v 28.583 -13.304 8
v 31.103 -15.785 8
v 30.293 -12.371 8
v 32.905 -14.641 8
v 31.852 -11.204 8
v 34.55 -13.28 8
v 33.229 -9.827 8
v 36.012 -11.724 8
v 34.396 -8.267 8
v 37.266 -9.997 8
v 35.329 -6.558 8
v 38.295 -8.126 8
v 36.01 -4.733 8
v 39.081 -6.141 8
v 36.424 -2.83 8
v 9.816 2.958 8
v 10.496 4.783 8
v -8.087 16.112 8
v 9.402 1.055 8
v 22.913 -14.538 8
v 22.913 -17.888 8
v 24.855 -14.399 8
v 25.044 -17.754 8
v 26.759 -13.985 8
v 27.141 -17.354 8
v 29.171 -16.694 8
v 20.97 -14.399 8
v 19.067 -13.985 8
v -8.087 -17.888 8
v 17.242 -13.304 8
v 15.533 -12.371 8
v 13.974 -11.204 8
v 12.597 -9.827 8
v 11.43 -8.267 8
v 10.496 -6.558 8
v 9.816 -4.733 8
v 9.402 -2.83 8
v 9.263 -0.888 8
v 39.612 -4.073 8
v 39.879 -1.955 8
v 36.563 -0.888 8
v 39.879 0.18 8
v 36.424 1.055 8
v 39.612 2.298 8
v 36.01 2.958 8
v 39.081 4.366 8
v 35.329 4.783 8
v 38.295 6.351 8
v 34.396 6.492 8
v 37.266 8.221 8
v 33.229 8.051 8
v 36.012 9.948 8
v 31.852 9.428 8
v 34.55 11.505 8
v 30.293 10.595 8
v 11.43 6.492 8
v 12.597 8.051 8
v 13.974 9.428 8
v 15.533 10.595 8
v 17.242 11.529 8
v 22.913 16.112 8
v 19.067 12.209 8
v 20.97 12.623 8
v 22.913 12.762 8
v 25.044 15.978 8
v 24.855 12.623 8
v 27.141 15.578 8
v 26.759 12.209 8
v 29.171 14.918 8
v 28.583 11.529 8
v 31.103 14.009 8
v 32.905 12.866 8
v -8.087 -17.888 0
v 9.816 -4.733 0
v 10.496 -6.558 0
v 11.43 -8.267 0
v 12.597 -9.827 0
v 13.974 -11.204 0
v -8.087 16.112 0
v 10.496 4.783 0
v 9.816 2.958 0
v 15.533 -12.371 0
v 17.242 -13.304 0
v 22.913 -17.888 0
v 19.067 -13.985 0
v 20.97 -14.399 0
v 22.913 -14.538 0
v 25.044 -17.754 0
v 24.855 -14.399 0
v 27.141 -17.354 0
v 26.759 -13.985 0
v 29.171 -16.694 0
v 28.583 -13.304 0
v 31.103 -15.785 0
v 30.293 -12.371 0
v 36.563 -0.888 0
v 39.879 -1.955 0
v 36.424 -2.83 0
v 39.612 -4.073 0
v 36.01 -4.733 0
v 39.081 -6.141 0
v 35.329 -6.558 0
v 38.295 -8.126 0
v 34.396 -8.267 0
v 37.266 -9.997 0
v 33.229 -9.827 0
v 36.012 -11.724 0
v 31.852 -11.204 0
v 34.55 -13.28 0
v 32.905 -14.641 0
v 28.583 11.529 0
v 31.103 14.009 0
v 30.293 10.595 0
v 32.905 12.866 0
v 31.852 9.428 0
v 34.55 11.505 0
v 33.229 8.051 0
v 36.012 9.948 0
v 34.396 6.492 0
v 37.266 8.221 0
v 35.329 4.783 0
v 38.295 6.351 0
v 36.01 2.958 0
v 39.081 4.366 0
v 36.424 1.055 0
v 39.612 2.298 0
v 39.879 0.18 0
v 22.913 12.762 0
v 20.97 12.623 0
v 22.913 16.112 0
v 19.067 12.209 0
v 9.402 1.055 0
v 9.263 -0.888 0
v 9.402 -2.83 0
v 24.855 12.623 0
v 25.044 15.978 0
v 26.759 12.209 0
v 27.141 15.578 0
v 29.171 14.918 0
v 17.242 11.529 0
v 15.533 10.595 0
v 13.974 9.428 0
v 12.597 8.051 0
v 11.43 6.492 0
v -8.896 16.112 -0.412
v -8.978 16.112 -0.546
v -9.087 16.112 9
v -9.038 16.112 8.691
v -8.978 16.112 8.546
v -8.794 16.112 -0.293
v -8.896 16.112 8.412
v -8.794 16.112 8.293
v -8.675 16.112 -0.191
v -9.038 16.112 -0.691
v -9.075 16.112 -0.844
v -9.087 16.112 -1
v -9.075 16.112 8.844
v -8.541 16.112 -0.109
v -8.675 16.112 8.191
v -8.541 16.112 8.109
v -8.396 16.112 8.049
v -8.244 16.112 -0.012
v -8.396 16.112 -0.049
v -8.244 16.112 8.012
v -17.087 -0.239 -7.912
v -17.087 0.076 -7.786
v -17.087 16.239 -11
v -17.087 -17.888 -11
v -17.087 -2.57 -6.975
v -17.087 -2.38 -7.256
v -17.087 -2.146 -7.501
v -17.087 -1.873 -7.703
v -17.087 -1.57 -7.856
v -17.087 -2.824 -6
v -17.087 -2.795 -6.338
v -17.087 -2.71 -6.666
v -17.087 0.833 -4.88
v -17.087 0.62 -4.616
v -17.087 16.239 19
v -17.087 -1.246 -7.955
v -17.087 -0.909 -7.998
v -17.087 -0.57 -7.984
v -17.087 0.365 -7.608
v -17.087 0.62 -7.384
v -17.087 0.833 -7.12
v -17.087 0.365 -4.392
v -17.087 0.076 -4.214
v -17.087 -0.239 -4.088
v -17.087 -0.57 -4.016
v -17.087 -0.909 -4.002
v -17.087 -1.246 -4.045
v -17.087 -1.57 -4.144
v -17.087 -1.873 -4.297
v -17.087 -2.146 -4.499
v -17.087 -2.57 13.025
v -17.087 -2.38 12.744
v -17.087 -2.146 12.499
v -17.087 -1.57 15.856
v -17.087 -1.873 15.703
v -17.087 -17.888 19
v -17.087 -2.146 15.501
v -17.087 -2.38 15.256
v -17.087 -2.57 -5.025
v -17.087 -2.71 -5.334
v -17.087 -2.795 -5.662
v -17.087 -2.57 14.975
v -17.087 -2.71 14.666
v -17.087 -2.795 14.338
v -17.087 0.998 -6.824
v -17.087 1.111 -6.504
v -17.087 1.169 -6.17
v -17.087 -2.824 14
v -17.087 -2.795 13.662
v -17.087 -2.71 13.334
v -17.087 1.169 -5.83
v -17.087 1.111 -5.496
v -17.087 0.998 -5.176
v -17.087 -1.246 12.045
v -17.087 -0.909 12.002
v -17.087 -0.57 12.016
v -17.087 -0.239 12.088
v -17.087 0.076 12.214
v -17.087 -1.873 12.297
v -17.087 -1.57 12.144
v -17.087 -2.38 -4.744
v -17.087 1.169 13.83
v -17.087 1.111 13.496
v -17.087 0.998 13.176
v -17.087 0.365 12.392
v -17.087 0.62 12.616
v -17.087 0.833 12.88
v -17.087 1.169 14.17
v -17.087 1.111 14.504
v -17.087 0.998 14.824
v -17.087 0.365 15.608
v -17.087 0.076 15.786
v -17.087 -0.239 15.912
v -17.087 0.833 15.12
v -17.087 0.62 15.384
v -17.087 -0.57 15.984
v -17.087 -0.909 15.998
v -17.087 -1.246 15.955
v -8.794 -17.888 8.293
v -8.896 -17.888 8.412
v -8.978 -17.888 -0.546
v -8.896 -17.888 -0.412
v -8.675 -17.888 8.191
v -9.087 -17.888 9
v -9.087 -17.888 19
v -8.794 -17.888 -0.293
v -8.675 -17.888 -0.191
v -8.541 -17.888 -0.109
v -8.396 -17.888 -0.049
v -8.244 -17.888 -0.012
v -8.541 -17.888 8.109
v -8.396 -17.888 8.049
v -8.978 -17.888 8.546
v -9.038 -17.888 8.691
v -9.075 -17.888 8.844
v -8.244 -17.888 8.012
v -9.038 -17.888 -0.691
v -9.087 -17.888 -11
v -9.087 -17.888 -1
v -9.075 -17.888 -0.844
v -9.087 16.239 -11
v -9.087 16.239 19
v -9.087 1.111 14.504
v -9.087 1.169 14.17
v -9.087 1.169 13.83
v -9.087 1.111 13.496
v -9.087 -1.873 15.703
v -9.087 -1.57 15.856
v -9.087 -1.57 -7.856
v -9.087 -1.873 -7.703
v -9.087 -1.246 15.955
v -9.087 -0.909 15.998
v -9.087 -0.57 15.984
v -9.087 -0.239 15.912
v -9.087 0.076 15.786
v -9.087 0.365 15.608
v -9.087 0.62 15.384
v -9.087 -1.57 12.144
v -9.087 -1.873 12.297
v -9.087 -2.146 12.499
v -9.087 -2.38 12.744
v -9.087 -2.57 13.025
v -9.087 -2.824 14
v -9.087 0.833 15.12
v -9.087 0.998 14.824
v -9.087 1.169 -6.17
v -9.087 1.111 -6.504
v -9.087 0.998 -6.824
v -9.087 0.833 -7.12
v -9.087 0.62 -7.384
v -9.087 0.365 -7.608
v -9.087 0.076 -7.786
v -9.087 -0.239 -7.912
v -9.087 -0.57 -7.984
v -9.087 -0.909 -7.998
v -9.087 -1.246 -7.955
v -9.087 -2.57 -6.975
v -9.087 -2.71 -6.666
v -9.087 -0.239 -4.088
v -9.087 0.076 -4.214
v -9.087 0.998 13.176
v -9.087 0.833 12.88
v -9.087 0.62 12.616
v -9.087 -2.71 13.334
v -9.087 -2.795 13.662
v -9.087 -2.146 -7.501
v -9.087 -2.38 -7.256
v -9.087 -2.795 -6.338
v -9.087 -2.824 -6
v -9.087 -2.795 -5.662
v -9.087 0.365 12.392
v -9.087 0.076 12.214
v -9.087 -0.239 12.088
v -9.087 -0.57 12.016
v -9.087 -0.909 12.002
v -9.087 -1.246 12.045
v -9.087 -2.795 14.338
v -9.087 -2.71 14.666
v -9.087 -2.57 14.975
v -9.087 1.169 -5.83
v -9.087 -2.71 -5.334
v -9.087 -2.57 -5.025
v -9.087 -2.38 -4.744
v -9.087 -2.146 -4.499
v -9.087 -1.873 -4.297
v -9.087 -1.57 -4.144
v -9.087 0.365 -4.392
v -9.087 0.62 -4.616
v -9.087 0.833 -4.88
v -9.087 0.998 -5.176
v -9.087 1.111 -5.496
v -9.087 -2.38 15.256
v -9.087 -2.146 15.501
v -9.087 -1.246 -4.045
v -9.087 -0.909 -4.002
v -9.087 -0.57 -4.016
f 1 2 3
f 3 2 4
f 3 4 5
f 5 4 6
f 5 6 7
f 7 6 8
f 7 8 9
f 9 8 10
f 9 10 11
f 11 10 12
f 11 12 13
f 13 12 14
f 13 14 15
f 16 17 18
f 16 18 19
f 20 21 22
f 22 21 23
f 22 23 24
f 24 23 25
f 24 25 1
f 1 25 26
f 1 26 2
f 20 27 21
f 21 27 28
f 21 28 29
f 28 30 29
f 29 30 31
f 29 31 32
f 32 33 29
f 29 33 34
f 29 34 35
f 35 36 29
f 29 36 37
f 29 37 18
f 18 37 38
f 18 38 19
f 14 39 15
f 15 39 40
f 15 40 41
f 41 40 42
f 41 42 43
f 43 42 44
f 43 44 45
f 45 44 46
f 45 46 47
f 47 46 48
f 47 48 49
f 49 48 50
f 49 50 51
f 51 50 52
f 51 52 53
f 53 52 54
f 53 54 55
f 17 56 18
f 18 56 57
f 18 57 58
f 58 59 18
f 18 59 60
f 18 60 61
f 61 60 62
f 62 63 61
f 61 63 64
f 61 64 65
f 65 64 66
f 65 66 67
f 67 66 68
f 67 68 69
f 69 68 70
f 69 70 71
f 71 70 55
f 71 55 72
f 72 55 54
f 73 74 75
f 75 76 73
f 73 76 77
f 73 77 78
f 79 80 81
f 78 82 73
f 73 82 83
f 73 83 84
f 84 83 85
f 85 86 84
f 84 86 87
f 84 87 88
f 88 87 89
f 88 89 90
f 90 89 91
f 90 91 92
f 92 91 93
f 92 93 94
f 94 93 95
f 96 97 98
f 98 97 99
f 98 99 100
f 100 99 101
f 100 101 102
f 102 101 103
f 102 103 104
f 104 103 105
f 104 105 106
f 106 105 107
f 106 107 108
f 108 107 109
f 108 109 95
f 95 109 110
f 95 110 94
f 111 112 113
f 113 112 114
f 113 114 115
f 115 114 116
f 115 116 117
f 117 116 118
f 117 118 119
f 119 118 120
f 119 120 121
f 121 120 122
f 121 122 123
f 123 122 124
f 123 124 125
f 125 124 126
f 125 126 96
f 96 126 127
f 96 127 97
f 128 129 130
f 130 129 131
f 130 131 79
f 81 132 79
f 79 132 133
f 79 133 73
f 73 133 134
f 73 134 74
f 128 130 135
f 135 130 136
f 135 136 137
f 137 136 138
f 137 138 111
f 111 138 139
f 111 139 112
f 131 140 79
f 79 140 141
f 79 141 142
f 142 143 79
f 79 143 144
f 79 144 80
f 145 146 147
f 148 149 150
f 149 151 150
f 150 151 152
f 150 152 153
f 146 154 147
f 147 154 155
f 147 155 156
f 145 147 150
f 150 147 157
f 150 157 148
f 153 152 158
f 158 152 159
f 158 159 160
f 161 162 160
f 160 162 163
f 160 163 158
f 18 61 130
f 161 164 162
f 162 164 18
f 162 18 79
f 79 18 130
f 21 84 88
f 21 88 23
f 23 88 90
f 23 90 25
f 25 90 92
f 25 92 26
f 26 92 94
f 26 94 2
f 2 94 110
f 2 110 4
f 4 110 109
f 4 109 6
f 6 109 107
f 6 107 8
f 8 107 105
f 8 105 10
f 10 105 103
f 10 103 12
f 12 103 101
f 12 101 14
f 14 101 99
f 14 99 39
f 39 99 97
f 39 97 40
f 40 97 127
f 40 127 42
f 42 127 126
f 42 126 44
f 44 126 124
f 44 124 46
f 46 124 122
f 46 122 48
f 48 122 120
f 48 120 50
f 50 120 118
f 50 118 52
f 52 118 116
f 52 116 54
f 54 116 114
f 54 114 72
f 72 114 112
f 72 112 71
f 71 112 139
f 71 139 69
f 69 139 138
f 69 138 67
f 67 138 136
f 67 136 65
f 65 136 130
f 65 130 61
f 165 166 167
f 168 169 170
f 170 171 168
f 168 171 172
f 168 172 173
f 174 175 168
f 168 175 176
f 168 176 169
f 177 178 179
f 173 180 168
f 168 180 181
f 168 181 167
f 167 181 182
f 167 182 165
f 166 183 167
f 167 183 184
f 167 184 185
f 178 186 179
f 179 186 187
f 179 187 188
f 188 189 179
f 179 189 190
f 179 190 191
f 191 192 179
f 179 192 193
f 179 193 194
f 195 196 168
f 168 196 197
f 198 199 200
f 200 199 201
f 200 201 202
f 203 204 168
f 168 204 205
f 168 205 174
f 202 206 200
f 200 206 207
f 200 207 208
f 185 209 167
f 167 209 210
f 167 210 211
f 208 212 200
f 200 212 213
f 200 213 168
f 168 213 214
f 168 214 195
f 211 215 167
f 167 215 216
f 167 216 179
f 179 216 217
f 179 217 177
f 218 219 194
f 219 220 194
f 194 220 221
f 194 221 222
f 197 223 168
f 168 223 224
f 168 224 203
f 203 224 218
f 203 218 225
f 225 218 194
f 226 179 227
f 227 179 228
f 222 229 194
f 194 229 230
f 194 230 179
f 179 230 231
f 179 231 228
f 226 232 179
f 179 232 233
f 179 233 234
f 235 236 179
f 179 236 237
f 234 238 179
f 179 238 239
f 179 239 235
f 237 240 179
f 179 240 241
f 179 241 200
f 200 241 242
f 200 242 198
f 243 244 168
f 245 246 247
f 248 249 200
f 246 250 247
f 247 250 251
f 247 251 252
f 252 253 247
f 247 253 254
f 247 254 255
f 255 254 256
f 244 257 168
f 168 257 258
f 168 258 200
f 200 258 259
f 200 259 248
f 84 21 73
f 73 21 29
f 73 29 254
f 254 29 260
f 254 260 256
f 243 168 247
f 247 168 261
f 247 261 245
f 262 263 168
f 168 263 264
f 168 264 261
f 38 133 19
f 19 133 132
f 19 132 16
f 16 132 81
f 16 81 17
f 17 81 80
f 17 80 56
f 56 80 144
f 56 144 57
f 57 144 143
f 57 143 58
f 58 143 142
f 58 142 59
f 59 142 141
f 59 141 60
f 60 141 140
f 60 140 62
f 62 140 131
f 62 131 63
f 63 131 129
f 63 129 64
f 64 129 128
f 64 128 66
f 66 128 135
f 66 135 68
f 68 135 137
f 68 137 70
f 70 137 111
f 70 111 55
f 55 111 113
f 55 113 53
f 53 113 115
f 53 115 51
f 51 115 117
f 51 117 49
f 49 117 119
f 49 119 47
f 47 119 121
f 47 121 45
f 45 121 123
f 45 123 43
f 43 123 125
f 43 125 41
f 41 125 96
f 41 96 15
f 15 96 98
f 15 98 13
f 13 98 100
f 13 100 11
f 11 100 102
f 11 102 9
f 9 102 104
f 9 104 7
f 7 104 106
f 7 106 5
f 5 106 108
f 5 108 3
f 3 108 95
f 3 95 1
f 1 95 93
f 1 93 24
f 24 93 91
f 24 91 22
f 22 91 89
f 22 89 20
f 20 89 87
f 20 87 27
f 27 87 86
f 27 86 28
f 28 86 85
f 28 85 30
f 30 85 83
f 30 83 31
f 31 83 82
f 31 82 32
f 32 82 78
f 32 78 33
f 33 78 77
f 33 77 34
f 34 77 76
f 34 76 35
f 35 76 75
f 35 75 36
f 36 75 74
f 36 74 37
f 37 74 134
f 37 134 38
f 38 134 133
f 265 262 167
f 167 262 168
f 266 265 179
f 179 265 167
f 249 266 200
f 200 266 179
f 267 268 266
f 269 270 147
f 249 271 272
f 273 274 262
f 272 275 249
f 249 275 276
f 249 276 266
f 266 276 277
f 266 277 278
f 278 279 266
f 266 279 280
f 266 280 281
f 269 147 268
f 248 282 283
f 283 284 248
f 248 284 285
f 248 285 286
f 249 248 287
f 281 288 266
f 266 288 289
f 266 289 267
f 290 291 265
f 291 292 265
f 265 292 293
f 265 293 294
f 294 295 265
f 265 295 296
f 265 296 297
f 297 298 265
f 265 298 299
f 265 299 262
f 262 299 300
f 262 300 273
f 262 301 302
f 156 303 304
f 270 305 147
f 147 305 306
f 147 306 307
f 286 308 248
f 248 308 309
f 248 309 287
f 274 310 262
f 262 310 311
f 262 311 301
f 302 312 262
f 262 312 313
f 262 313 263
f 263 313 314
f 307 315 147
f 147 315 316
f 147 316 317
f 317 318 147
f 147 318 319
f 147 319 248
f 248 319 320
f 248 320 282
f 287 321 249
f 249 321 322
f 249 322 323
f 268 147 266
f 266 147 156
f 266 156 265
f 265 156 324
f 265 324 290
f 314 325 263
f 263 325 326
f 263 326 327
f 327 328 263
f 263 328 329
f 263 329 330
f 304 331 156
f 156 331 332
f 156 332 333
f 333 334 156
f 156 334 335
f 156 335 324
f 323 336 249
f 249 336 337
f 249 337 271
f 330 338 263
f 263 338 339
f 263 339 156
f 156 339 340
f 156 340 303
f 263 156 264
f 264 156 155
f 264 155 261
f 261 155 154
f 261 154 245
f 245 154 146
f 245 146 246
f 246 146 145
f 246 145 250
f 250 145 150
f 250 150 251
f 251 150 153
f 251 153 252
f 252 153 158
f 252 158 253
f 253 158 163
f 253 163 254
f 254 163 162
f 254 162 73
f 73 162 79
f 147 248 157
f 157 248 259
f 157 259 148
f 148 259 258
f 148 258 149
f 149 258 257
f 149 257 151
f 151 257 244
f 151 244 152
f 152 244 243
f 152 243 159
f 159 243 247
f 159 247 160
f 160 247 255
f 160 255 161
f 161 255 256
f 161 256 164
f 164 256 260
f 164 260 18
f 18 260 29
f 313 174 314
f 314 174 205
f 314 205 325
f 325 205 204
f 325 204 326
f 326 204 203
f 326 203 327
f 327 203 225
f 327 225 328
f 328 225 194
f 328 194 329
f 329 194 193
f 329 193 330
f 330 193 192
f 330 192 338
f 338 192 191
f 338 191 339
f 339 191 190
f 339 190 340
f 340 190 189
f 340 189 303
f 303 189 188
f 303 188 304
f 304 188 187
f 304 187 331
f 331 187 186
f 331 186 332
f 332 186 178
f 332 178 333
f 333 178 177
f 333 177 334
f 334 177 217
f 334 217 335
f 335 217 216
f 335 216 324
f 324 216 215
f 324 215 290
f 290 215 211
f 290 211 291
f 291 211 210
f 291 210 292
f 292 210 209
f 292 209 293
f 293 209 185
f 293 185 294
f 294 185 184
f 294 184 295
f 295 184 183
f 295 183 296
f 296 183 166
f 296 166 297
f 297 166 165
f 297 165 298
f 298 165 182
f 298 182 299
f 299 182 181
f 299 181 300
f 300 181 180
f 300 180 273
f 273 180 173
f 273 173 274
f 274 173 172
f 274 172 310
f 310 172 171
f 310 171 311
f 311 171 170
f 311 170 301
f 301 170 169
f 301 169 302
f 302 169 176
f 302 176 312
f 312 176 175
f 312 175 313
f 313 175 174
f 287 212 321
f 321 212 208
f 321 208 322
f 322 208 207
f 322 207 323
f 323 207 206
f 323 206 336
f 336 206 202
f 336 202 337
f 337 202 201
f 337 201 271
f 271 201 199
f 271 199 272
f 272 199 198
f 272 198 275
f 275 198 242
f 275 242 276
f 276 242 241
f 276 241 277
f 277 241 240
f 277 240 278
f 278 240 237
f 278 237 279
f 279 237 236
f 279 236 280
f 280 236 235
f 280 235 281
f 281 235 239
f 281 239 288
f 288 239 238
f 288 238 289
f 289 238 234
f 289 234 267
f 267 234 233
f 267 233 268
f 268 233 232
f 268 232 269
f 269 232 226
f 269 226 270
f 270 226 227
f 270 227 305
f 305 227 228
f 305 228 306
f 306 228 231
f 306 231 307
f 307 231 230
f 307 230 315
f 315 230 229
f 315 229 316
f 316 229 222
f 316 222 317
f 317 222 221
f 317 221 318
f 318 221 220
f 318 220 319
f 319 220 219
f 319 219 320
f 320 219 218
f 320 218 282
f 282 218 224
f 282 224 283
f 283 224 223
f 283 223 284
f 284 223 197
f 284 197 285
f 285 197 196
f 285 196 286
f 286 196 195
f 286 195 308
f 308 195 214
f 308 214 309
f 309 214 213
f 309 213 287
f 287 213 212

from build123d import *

# Parameters (mm, degrees)
SKETCH2_R           = 13.65
BOSS_EXTRUDE1_DEPTH = 8
SKETCH3_W           = 30
SKETCH3_H           = 34.126910457
BOSS_EXTRUDE2_DEPTH = 8
FILLET1_R           = 1
SKETCH5_R           = 2
CUT_EXTRUDE2_DEPTH  = 63.689475997


with BuildPart() as part:
    # Sketch2 → Boss-Extrude1 (new body)
    with BuildSketch(Plane.XY):
        with BuildLine():
            Line((22.912878475, 16.112283523), (-17.087121525, 16.112283523))
            Line((-17.087121525, 16.112283523), (-17.087121525, -17.887716477))
            Line((-17.087121525, -17.887716477), (22.912878475, -17.887716477))
            ThreePointArc((22.912878475, -17.887716477), (39.912878475, -0.887716477), (22.912878475, 16.112283523))
        make_face()
        with Locations((22.912878475, -0.887716477)):
            Circle(SKETCH2_R, mode=Mode.SUBTRACT)
    extrude(amount=BOSS_EXTRUDE1_DEPTH)

    # Sketch3 → Boss-Extrude2 (add)
    with BuildSketch(Plane.ZY.offset(17.087121525)):
        with Locations((4, -0.824261249)):
            Rectangle(SKETCH3_W, SKETCH3_H)
    extrude(amount=-BOSS_EXTRUDE2_DEPTH)

    # Fillet1
    fillet1_edges = [part.edges().sort_by_distance(p)[0] for p in [
        (-9.087121525, -0.887716477, 8),
        (-9.087121525, -0.887716477, 0),
    ]]
    fillet(fillet1_edges, radius=FILLET1_R)

    # Sketch5 → Cut-Extrude2 (cut, through all)
    with BuildSketch(Plane.ZY.offset(17.087121525)):
        with Locations(Location((-6, -0.824261249, 0), (0, 0, 270))):
            Circle(SKETCH5_R)
        with Locations(Location((14, -0.824261249, 0), (0, 0, 270))):
            Circle(SKETCH5_R)
    extrude(amount=-CUT_EXTRUDE2_DEPTH, mode=Mode.SUBTRACT)


solid = part.part
